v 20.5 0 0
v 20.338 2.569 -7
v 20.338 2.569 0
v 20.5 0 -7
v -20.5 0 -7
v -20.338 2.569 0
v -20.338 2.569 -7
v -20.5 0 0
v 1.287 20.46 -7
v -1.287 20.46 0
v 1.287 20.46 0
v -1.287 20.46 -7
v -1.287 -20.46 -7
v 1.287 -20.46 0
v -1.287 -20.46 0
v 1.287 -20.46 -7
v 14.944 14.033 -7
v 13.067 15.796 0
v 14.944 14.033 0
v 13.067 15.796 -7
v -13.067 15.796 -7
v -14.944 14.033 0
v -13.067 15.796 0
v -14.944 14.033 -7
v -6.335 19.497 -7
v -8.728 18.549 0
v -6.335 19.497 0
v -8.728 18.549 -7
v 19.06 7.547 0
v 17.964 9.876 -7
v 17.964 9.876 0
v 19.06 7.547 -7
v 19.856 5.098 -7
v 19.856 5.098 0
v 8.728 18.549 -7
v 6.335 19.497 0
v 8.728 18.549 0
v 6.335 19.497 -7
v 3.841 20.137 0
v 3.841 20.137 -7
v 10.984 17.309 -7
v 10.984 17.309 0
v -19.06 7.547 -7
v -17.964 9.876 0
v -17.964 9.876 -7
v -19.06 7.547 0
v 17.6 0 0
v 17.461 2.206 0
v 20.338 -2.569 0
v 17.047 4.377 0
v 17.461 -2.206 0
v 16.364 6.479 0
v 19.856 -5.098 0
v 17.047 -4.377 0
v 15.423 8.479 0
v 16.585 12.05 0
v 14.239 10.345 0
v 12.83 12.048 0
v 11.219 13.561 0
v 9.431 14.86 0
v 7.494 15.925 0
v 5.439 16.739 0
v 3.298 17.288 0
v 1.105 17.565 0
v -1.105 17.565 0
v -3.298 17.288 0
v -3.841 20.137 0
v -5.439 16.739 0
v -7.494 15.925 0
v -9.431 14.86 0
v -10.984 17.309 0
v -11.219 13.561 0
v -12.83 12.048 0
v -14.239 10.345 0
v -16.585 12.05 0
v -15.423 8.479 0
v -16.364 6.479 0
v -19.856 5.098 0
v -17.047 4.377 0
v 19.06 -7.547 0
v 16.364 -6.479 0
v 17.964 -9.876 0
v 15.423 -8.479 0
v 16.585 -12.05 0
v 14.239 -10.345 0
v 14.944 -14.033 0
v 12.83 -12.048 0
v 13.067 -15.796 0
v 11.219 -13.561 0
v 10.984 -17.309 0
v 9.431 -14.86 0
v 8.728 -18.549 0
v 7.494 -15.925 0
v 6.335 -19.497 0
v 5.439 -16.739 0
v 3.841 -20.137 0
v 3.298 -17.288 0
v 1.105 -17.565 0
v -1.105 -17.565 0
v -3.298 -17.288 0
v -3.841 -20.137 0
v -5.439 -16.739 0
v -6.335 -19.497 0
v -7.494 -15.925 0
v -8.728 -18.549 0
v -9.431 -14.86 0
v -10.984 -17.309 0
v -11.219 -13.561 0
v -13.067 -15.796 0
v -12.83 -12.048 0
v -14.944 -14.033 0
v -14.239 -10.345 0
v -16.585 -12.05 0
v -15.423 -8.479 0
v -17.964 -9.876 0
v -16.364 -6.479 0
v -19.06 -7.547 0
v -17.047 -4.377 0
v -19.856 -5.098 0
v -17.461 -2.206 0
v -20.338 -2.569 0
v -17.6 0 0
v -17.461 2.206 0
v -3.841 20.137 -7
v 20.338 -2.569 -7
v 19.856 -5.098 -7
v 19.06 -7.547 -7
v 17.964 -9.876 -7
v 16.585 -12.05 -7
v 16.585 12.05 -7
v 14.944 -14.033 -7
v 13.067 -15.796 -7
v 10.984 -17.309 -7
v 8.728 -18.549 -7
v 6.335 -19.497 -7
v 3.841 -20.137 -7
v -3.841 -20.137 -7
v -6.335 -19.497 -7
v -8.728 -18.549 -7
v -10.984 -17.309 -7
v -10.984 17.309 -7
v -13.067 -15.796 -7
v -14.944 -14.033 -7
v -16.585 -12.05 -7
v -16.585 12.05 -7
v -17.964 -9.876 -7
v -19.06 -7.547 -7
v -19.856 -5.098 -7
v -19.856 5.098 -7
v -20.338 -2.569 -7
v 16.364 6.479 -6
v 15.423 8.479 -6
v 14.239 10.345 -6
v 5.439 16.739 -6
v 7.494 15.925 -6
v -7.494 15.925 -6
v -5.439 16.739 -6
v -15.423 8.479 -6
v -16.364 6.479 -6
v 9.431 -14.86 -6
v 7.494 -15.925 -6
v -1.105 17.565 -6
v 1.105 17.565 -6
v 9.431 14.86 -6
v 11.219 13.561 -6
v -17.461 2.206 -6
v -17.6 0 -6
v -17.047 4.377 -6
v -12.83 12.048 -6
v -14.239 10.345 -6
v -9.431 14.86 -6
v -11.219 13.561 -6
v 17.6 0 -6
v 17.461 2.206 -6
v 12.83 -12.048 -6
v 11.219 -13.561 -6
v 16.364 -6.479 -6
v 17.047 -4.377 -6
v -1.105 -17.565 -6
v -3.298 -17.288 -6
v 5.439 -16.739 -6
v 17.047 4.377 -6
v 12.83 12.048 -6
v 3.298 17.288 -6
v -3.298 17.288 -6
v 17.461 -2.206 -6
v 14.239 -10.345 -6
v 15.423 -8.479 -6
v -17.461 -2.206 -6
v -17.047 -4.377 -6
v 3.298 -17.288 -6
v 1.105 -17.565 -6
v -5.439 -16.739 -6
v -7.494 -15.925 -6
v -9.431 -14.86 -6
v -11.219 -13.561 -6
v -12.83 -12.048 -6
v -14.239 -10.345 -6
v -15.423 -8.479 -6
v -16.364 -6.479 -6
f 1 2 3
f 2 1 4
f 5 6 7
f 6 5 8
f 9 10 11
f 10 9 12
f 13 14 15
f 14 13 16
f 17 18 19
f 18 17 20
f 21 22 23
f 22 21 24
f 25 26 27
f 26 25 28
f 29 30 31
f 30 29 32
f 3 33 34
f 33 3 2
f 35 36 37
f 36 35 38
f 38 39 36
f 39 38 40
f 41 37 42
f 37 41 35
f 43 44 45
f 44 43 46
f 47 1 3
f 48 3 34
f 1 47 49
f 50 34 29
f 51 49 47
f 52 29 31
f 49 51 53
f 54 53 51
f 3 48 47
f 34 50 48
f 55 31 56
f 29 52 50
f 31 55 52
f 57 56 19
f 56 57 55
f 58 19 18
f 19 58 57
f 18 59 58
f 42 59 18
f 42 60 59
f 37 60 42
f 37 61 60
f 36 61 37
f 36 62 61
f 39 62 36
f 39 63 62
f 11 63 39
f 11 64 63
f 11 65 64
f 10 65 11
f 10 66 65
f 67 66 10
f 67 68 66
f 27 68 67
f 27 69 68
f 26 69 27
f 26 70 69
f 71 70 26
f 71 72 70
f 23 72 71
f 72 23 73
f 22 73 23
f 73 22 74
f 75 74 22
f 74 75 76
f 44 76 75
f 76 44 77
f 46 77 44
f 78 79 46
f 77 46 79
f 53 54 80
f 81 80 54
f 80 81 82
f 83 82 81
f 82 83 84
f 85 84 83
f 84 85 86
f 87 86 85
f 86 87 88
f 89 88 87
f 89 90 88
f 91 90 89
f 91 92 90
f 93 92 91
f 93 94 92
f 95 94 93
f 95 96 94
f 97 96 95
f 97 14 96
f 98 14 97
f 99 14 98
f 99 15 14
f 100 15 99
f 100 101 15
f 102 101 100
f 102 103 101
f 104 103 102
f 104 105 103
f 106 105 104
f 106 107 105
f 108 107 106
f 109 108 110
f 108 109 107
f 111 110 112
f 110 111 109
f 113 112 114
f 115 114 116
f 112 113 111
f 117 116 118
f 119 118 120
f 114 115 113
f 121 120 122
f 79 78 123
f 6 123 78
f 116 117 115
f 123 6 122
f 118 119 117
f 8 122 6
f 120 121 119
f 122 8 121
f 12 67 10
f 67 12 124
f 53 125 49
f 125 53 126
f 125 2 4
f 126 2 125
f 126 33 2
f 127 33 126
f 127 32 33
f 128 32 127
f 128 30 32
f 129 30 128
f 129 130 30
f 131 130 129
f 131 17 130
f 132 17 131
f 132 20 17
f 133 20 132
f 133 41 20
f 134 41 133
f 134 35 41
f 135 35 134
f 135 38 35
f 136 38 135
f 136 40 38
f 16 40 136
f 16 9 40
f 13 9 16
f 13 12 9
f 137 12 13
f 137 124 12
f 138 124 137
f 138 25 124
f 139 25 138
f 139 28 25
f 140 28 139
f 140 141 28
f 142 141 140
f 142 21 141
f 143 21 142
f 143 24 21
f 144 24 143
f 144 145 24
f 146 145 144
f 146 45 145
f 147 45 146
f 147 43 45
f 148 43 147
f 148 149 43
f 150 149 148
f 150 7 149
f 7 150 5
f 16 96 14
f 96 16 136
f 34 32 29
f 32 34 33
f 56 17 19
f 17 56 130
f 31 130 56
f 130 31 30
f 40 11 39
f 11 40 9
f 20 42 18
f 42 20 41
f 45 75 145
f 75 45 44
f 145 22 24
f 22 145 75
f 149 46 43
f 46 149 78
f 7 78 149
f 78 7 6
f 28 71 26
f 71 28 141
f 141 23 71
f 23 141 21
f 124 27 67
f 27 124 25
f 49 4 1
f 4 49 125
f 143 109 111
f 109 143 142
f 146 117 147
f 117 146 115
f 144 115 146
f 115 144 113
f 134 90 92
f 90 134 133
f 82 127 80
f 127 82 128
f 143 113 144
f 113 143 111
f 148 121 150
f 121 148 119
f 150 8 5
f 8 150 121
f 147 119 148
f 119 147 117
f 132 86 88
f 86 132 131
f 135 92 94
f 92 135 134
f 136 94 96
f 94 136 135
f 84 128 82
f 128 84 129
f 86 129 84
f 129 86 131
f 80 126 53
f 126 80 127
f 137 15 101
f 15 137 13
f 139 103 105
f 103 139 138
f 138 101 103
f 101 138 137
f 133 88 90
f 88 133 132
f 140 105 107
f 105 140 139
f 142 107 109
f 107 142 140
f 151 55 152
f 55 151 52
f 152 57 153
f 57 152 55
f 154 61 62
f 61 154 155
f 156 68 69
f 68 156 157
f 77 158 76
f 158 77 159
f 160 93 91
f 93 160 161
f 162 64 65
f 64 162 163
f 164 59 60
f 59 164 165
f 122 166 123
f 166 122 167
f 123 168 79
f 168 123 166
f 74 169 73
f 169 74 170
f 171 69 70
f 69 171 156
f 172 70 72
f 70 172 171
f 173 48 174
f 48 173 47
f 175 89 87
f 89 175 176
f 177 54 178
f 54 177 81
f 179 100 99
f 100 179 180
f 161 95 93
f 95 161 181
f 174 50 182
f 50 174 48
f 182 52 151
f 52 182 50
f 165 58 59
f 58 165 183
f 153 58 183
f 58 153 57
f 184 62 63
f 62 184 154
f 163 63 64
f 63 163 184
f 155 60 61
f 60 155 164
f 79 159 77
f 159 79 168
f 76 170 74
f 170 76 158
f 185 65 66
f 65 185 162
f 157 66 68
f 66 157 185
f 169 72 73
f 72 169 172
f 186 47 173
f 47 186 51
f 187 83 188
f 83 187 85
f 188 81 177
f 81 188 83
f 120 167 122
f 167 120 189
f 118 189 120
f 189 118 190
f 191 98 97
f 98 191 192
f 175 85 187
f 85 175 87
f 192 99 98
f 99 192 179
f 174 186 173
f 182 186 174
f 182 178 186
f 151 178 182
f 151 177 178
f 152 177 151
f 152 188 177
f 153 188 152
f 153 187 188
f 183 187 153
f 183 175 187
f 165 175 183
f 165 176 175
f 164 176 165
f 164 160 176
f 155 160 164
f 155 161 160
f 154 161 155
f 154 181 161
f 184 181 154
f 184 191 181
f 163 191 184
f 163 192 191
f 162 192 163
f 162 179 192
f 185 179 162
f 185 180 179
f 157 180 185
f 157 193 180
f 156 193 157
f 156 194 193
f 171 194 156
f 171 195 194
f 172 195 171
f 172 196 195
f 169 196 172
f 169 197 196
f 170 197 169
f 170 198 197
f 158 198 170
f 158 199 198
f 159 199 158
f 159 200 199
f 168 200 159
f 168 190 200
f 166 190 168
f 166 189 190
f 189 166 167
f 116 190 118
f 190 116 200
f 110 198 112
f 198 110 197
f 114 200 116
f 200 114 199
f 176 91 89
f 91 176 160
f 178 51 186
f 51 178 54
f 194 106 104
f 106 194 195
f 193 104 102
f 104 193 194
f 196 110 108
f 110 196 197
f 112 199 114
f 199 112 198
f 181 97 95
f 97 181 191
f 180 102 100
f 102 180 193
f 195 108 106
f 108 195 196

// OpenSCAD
$fn = 50;


difference() {
	union() {
		translate(v = [0, 0, -7.0000000000]) {
			cylinder(h = 7, r = 20.5000000000);
		}
	}
	union() {
		#translate(v = [0, 0, -6.0000000000]) {
			cylinder(h = 6, r = 17.6000000000);
		}
	}
}
